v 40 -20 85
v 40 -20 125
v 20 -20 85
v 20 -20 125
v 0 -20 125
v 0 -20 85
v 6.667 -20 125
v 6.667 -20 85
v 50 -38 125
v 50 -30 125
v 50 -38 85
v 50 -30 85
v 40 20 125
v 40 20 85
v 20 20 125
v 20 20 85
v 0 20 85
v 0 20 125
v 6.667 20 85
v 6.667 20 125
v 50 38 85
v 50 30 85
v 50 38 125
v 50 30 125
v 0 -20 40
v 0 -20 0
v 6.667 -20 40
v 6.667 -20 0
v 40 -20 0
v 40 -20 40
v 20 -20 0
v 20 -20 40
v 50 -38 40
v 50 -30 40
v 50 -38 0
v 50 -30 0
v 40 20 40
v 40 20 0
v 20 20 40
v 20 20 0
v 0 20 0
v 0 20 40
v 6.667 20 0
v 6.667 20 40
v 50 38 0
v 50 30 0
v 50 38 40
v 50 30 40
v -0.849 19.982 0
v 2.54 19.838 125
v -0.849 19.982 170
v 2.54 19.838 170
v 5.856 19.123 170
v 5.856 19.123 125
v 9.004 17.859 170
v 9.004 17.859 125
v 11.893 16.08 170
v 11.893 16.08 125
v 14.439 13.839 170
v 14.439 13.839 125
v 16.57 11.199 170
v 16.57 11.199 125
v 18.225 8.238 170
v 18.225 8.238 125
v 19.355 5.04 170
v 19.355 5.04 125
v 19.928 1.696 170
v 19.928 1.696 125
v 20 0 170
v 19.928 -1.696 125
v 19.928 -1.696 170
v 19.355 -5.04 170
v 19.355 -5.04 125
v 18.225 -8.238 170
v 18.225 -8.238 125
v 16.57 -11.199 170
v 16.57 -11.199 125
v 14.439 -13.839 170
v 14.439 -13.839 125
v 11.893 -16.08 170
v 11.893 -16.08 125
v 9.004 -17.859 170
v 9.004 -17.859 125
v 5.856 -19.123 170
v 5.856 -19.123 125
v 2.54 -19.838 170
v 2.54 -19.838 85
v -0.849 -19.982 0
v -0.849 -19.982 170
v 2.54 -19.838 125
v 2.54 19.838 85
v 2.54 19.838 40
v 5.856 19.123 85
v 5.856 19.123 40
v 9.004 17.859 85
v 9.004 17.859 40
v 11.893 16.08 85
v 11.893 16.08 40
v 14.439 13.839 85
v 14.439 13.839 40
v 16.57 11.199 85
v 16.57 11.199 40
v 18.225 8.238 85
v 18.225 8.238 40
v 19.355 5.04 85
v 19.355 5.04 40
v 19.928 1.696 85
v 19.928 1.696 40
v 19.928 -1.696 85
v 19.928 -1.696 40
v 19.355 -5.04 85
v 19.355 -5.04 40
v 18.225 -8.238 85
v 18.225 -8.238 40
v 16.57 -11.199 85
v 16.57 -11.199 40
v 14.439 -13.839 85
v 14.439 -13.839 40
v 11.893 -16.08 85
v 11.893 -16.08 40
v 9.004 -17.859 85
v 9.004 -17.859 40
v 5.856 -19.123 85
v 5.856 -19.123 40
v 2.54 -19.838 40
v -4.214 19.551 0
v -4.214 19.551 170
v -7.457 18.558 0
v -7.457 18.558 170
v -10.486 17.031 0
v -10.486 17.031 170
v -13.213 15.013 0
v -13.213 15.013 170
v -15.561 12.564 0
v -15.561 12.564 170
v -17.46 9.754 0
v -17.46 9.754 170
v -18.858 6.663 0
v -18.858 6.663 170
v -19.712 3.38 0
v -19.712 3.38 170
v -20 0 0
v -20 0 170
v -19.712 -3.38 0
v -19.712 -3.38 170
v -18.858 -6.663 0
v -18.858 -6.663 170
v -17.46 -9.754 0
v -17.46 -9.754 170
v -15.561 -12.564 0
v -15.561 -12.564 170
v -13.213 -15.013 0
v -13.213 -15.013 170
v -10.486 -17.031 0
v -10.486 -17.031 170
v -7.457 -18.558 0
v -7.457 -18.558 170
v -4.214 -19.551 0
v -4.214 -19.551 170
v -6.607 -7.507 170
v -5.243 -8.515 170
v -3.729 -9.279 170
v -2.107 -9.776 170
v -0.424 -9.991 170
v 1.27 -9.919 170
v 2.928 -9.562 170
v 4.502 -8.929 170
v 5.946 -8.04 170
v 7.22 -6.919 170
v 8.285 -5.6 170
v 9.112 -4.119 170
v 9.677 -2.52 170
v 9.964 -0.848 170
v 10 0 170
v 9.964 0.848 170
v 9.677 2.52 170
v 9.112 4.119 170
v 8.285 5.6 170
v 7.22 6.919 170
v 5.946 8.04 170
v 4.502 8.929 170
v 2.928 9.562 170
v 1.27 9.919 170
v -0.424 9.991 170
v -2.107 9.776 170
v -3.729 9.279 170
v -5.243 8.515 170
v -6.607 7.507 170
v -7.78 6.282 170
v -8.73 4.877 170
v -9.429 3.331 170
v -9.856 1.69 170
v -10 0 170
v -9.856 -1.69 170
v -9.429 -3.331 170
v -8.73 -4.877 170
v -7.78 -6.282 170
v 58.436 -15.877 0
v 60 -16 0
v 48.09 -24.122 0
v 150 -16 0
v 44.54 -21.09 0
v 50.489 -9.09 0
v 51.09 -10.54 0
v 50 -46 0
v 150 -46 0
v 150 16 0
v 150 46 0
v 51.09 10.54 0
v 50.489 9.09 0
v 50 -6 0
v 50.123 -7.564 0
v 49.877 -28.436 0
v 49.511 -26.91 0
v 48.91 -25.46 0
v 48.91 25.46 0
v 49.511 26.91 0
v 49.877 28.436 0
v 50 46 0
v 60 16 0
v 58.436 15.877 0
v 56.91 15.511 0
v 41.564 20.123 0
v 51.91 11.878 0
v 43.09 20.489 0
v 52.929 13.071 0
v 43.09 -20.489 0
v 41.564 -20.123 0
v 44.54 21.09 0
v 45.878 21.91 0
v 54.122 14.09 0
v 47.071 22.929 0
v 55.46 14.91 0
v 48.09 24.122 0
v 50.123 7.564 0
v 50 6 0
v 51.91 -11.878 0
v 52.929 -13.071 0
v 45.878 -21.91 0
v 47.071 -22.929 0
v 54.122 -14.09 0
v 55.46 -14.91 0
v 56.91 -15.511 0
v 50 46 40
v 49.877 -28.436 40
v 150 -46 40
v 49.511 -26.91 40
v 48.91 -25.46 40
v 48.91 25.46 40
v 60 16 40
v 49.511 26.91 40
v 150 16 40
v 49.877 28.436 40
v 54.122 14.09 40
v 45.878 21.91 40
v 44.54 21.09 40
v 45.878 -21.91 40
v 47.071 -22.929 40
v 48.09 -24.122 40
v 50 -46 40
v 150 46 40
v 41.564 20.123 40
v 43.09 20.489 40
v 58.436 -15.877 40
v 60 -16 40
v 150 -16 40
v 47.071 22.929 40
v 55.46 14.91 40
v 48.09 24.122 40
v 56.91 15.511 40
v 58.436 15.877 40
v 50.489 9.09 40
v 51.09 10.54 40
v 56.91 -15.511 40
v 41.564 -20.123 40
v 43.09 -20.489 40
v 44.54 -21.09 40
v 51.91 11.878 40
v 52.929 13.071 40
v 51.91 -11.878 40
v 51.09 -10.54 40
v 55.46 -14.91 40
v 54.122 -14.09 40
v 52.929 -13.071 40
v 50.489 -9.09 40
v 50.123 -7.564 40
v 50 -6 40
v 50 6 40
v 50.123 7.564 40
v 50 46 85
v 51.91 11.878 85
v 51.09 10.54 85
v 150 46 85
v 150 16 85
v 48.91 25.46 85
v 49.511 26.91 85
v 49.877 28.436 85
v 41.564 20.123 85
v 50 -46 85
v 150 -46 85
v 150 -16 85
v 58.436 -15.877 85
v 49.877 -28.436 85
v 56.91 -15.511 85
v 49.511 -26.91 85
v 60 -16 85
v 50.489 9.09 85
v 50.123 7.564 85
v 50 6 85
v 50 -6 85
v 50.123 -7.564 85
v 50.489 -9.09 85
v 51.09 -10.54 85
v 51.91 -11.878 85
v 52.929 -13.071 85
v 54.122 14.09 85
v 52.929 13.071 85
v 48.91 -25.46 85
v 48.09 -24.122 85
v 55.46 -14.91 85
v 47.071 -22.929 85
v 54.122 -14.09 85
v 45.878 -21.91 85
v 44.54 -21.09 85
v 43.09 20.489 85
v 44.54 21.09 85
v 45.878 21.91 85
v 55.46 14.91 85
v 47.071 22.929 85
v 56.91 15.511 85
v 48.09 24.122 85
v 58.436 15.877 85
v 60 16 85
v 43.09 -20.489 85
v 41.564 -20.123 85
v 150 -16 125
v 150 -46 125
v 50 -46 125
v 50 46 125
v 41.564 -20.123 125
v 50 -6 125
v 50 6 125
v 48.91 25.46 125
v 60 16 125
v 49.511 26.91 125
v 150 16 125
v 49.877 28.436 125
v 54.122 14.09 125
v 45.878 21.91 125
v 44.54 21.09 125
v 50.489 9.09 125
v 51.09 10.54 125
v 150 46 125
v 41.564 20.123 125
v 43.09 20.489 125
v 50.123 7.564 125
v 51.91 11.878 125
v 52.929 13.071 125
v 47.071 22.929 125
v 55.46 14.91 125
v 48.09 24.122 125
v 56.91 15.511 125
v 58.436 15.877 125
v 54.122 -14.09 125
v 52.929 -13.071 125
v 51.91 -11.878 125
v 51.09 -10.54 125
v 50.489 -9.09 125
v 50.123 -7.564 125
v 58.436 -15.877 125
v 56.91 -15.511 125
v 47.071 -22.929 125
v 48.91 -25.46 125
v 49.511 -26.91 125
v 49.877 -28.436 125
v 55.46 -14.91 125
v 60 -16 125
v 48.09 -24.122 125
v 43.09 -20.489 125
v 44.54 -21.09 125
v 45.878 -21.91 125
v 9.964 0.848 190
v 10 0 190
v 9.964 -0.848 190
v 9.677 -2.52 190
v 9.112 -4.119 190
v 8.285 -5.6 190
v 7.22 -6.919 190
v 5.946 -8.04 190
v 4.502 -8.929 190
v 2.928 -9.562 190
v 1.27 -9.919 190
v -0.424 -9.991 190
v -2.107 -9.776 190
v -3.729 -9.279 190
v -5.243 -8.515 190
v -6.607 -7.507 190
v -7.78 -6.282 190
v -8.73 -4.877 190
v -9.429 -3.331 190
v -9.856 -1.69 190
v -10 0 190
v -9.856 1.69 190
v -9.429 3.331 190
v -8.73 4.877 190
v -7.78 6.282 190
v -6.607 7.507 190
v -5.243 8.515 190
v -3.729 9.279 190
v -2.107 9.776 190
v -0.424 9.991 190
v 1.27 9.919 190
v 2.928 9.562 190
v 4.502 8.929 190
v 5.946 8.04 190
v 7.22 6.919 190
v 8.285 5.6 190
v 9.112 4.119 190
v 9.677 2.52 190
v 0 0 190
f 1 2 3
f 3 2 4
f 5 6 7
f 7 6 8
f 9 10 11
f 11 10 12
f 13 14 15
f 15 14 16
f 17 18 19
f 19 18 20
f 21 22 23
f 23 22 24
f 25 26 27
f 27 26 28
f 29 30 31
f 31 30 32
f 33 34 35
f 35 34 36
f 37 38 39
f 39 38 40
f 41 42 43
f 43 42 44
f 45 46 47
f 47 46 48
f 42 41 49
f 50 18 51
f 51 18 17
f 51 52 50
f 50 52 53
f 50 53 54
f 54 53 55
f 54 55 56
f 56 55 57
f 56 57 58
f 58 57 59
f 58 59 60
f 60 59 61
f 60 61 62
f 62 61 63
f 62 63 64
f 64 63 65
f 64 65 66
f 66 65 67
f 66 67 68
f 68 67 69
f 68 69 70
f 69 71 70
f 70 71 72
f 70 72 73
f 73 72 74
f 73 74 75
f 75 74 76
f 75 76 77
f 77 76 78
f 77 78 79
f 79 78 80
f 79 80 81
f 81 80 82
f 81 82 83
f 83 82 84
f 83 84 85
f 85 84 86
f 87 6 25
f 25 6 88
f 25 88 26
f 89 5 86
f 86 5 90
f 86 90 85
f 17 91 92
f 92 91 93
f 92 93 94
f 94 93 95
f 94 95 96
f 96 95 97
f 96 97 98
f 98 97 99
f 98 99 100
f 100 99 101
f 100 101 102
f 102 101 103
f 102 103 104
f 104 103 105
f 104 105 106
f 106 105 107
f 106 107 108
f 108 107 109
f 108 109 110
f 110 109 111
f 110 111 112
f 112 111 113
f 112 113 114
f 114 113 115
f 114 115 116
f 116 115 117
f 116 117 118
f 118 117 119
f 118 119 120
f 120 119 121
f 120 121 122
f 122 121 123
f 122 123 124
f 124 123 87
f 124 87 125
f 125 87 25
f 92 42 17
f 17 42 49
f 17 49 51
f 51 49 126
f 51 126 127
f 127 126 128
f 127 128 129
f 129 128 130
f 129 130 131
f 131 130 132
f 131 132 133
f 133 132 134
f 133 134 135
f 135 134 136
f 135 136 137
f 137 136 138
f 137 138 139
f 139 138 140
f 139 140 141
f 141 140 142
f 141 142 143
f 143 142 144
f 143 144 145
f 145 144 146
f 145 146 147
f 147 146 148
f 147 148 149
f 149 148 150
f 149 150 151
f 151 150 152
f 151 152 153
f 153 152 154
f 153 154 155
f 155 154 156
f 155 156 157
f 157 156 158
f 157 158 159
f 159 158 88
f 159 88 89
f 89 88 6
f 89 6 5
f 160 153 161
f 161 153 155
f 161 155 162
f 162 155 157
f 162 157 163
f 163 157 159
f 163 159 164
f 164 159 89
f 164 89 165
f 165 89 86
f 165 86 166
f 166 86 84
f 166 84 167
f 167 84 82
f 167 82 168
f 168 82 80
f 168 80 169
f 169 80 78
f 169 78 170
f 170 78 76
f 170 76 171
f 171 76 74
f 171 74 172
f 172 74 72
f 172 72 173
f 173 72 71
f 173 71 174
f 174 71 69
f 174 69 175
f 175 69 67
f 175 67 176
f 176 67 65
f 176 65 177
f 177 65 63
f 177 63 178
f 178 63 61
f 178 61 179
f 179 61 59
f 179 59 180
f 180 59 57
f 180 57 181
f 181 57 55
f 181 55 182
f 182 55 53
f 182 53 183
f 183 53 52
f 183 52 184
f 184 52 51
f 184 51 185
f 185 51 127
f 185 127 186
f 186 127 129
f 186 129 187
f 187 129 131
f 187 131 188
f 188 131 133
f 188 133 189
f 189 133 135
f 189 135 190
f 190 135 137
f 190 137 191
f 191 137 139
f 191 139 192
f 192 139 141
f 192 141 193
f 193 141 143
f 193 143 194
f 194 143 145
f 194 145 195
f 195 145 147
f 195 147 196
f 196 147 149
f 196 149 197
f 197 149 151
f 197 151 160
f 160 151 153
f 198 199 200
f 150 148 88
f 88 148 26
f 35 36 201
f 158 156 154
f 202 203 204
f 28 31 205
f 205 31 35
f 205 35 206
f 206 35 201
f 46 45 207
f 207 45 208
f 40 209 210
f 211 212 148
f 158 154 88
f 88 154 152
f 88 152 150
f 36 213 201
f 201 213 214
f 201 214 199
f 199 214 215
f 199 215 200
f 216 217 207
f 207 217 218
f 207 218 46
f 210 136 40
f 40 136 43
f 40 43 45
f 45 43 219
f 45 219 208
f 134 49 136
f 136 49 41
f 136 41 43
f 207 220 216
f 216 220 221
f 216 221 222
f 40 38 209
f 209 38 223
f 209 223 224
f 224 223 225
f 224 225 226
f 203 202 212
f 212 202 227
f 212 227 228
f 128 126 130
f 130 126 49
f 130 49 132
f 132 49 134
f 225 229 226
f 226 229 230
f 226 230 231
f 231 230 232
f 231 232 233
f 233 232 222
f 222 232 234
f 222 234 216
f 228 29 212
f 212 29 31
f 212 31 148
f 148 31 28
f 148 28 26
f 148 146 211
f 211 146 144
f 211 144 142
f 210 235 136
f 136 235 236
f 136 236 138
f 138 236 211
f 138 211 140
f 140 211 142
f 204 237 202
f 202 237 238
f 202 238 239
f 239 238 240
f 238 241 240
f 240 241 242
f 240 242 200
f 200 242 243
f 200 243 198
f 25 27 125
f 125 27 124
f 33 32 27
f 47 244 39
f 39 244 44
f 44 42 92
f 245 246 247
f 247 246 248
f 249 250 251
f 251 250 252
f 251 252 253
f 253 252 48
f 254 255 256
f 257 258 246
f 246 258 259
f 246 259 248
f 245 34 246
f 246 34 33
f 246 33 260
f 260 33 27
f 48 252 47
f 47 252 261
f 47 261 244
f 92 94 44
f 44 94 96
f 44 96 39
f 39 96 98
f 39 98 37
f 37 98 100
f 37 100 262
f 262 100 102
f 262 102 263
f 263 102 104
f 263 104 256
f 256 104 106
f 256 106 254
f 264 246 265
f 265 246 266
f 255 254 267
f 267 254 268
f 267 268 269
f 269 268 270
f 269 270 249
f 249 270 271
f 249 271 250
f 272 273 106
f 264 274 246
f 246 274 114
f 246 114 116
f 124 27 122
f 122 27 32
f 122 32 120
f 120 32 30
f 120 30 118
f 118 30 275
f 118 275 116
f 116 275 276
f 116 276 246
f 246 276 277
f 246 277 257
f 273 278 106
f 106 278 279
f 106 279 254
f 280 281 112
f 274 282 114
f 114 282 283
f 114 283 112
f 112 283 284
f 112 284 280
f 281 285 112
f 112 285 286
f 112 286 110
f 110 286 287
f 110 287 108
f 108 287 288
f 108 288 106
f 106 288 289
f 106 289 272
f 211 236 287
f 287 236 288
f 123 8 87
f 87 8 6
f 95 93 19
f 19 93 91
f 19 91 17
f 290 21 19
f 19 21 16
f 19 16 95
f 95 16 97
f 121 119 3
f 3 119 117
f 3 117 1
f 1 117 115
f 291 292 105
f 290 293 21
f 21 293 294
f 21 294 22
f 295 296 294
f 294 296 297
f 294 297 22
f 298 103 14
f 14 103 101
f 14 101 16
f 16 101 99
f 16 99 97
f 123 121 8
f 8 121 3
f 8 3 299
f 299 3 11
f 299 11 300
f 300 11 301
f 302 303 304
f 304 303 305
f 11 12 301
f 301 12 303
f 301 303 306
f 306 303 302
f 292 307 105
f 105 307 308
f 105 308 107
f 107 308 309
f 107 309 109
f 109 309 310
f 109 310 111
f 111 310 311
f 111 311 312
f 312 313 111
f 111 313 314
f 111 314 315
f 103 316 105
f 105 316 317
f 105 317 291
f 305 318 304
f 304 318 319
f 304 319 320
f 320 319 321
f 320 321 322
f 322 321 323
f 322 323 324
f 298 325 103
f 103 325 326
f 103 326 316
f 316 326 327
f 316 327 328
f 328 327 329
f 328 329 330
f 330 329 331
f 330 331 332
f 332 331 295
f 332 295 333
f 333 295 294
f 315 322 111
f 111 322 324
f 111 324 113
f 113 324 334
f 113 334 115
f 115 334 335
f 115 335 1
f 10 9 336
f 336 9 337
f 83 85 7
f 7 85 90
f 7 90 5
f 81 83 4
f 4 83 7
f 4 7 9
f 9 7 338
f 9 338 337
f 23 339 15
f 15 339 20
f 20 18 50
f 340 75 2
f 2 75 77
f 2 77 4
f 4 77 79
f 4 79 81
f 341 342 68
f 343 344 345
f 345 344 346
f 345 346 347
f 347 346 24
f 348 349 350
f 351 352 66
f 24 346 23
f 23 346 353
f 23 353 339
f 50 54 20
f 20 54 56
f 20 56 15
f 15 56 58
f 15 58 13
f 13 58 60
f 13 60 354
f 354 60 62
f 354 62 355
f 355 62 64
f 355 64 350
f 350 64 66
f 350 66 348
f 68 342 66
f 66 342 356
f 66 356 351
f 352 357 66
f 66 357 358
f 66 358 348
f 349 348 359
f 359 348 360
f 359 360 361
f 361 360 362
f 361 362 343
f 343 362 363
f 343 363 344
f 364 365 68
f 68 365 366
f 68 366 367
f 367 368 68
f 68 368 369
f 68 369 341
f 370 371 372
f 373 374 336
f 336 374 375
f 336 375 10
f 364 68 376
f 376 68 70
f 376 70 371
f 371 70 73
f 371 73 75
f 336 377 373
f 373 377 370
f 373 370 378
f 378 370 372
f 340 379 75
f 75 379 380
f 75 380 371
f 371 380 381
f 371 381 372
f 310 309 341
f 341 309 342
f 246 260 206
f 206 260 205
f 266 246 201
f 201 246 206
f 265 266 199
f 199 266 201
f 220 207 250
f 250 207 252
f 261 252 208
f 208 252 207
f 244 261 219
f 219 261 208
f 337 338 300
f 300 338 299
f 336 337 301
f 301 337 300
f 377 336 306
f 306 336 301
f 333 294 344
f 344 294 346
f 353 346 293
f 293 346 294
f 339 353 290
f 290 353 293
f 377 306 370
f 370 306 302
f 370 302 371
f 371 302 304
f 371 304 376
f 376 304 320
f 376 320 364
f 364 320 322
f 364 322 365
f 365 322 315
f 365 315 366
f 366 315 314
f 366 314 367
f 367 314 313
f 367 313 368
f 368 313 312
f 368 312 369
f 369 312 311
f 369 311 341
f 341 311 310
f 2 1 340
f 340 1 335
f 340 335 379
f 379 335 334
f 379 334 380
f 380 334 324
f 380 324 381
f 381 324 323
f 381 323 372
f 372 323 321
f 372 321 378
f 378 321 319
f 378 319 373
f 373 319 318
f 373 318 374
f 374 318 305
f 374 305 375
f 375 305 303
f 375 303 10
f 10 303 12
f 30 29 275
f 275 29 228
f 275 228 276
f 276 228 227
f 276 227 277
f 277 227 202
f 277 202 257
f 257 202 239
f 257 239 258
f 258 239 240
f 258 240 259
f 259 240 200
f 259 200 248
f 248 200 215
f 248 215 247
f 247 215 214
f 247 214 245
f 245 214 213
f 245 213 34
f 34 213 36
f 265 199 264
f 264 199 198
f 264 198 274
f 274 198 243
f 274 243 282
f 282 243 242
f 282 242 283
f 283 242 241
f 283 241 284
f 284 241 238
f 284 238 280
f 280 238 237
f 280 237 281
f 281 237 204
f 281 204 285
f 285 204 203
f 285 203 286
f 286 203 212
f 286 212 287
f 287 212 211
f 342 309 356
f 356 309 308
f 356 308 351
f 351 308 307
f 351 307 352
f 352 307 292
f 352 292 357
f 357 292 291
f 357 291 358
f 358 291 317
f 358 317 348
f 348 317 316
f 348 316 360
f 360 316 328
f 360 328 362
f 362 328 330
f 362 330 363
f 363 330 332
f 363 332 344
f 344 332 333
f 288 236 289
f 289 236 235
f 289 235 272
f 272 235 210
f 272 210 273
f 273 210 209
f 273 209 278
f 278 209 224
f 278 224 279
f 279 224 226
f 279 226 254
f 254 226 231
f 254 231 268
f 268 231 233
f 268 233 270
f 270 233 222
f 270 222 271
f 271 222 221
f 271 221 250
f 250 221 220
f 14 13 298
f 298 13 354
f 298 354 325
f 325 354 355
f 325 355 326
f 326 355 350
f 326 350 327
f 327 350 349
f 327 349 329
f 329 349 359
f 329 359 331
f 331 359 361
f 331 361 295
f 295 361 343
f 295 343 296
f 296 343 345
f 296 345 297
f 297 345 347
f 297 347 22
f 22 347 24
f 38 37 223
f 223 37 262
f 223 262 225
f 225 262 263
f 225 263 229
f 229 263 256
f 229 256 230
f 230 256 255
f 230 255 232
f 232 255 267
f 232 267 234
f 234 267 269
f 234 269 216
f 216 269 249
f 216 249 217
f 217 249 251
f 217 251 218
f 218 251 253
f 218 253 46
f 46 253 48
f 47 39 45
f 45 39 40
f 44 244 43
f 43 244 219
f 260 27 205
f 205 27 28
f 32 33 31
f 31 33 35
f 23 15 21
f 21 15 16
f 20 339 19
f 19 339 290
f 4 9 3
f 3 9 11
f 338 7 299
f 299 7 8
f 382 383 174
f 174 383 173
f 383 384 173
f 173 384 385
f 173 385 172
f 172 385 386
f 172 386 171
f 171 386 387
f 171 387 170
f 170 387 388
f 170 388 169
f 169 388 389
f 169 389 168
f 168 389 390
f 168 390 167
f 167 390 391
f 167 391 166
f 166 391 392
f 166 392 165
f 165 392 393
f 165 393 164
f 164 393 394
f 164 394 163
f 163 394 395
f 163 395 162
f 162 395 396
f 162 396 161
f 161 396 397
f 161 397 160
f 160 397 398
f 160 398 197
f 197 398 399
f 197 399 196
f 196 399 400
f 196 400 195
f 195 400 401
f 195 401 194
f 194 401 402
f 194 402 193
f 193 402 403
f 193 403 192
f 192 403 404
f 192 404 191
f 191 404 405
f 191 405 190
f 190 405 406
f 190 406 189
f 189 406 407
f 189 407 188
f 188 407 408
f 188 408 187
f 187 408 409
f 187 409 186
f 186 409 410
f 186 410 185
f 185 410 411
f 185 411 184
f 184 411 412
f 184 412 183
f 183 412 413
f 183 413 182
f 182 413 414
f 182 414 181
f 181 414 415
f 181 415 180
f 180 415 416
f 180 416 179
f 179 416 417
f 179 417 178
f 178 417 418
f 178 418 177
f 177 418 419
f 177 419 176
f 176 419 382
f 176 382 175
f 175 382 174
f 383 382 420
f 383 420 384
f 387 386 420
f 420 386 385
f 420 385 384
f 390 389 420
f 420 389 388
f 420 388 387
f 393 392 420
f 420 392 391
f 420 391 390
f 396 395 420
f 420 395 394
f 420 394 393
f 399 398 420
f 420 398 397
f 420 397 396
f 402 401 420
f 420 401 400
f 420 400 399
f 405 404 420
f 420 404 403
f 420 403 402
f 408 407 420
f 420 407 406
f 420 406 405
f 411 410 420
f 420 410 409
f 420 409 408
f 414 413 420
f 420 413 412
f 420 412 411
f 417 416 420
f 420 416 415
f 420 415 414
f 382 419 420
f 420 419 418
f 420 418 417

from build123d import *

# Parameters (mm, degrees)
SKETCH_1_R      = 20
EXTRUDE_1_DEPTH = 170
SKETCH_2_W      = 40
SKETCH_2_H      = 40
EXTRUDE_2_DEPTH = 50
SKETCH_3_W      = 100
SKETCH_3_H      = 30
EXTRUDE_3_DEPTH = 40
SKETCH_4_W      = 100
SKETCH_4_H      = 30
EXTRUDE_4_DEPTH = 40
FILLET_1_R      = 10
EXTRUDE_6_DEPTH = 20
EXTRUDE_7_DEPTH = 20
SKETCH_10_R     = 10
EXTRUDE_8_DEPTH = 20


with BuildPart() as part:
    # 스케치1 → 보스-돌출1 (new body)
    with BuildSketch(Plane.XY):
        Circle(SKETCH_1_R)
    extrude(amount=EXTRUDE_1_DEPTH)

    # 스케치2 → 보스-돌출2 (add)
    with BuildSketch(Plane(origin=(0, 0, 0), x_dir=(0, 0, -1), z_dir=(1, 0, 0))):
        with Locations((-20, 0)):
            Rectangle(SKETCH_2_W, SKETCH_2_H)
        with Locations((-105, 0)):
            Rectangle(SKETCH_2_W, SKETCH_2_H)
    extrude(amount=EXTRUDE_2_DEPTH)

    # 스케치3 → 보스-돌출3 (add)
    with BuildSketch(Plane(origin=(0, 0, 0), x_dir=(-1, 0, 0), z_dir=(0, 0, -1))):
        with Locations((-100, -31)):
            Rectangle(SKETCH_3_W, SKETCH_3_H)
        with Locations((-100, 31)):
            Rectangle(SKETCH_3_W, SKETCH_3_H)
    extrude(amount=-EXTRUDE_3_DEPTH)

    # 스케치4 → 보스-돌출4 (add)
    with BuildSketch(Plane(origin=(0, 0, 85), x_dir=(-1, 0, 0), z_dir=(0, 0, -1))):
        with Locations((-100, -31)):
            Rectangle(SKETCH_4_W, SKETCH_4_H)
        with Locations((-100, 31)):
            Rectangle(SKETCH_4_W, SKETCH_4_H)
    extrude(amount=-EXTRUDE_4_DEPTH)

    # 필렛1
    fillet_1_edges = [part.edges().sort_by_distance(p)[0] for p in [
        (50, -20, 20),
        (50, 20, 105),
        (50, -20, 105),
        (50, -16, 20),
        (50, 16, 20),
        (50, -16, 105),
        (50, 16, 105),
        (50, 20, 20),
    ]]
    fillet(fillet_1_edges, radius=FILLET_1_R)

    # 스케치11 → 보스-돌출6 (add, symmetric)
    with BuildSketch(Plane.XY.offset(20)):
        Polygon((20, 20), (50, 38), (50, 46), (6.666666667, 20), align=None)
        Polygon((20, -20), (50, -38), (50, -46), (6.666666667, -20), align=None)
    extrude(amount=EXTRUDE_6_DEPTH, both=True)

    # 스케치13 → 보스-돌출7 (add, symmetric)
    with BuildSketch(Plane.XY.offset(105)):
        Polygon((20, 20), (50, 38), (50, 46), (6.666666667, 20), align=None)
        Polygon((20, -20), (6.666666667, -20), (50, -46), (50, -38), align=None)
    extrude(amount=EXTRUDE_7_DEPTH, both=True)

    # 스케치10 → 보스-돌출8 (add)
    with BuildSketch(Plane.XY.offset(170)):
        Circle(SKETCH_10_R)
    extrude(amount=EXTRUDE_8_DEPTH)


solid = part.part
